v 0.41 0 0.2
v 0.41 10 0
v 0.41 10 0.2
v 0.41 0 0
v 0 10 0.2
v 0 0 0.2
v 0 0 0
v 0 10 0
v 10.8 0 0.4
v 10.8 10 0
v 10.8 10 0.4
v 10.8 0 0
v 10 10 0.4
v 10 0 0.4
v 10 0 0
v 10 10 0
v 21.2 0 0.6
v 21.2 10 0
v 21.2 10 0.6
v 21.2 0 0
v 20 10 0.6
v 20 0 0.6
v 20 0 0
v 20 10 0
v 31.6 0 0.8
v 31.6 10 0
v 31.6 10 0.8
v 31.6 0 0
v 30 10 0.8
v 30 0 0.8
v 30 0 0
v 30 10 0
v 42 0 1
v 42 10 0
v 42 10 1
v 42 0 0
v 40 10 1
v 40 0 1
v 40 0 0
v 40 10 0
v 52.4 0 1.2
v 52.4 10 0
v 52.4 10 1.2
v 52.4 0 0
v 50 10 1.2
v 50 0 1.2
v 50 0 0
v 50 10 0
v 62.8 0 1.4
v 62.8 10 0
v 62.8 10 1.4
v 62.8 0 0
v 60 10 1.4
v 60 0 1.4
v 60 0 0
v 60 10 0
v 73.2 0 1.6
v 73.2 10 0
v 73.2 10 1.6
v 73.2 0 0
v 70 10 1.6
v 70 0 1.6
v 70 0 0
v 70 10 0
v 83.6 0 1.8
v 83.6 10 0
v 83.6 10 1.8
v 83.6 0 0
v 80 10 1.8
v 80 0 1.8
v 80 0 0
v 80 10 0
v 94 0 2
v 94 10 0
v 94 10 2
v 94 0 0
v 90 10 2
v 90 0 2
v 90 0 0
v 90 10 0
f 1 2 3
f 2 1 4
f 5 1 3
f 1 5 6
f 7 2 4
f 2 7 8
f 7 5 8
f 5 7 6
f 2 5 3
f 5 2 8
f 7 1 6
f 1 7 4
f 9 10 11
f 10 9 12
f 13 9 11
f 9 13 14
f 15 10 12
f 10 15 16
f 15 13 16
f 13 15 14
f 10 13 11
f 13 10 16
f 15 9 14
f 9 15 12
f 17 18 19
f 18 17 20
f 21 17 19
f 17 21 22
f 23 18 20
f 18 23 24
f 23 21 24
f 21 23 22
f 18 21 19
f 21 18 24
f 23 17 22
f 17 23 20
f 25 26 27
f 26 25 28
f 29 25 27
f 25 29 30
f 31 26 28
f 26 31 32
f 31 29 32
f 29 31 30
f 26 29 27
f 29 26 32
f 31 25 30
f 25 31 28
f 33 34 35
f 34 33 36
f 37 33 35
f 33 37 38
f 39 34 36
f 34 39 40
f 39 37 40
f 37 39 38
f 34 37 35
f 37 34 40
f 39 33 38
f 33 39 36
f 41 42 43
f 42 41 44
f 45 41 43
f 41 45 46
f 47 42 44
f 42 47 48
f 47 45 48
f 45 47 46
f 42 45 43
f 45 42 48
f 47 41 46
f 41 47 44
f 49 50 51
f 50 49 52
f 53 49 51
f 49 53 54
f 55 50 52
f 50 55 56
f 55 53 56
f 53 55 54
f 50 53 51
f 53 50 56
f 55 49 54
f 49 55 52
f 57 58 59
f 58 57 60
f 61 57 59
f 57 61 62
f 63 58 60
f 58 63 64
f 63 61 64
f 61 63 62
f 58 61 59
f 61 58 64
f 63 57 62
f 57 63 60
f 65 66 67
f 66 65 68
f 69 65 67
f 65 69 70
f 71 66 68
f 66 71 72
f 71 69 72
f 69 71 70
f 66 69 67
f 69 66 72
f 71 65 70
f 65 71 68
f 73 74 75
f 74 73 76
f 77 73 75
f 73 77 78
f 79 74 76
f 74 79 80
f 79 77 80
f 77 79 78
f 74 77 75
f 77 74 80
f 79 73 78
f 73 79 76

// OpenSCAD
// file: BSCADLIB/conf/pla_standard.scad
// values in mm unless specified otherwise

_filament_diameter=1.75;
_nozzel_size=.4;
_layer_height=.2;
_layer=_layer_height; // alias to ease usage
_line_width=_nozzel_size;
_line=_line_width; // alias to ease usage
_wall_line_count=3;
_wall_thickness=_line_width*_wall_line_count;
_wall=_wall_thickness; // alias to ease usage
_tollerance=.02;

echo("---------------------------------------");
echo(filament_diameter=_filament_diameter);
echo(_layer_height=_layer_height);
echo(_layer=_layer);
echo(_nozzel_size=_nozzel_size);
echo(_line_width=_line_width);
echo(_line=_line);
echo(_wall_line_count=_wall_line_count);
echo(_wall_thickness=_wall_thickness);
echo(_wall=_wall);
echo(_tollerance=_tollerance);
echo("---------------------------------------");

function getWidth(num_lines) = num_lines*_line_width;
function getHeight(num_layers) = num_layers*_layer_height;
// main file
include <BSCADLIB/conf/pla_standard.scad>

module brick(x,y,z, offset) {
  echo(z=z);
  translate([offset,0,0]) cube([x,y,z]);
}

for (i =[1:10]) {
  width = i==1 ? _line*i+.01 : _line*i; // adding .01 as a hack to get cura to render a singel wide line
  brick(width, 10, _layer*i, (i-1)*10);
}
